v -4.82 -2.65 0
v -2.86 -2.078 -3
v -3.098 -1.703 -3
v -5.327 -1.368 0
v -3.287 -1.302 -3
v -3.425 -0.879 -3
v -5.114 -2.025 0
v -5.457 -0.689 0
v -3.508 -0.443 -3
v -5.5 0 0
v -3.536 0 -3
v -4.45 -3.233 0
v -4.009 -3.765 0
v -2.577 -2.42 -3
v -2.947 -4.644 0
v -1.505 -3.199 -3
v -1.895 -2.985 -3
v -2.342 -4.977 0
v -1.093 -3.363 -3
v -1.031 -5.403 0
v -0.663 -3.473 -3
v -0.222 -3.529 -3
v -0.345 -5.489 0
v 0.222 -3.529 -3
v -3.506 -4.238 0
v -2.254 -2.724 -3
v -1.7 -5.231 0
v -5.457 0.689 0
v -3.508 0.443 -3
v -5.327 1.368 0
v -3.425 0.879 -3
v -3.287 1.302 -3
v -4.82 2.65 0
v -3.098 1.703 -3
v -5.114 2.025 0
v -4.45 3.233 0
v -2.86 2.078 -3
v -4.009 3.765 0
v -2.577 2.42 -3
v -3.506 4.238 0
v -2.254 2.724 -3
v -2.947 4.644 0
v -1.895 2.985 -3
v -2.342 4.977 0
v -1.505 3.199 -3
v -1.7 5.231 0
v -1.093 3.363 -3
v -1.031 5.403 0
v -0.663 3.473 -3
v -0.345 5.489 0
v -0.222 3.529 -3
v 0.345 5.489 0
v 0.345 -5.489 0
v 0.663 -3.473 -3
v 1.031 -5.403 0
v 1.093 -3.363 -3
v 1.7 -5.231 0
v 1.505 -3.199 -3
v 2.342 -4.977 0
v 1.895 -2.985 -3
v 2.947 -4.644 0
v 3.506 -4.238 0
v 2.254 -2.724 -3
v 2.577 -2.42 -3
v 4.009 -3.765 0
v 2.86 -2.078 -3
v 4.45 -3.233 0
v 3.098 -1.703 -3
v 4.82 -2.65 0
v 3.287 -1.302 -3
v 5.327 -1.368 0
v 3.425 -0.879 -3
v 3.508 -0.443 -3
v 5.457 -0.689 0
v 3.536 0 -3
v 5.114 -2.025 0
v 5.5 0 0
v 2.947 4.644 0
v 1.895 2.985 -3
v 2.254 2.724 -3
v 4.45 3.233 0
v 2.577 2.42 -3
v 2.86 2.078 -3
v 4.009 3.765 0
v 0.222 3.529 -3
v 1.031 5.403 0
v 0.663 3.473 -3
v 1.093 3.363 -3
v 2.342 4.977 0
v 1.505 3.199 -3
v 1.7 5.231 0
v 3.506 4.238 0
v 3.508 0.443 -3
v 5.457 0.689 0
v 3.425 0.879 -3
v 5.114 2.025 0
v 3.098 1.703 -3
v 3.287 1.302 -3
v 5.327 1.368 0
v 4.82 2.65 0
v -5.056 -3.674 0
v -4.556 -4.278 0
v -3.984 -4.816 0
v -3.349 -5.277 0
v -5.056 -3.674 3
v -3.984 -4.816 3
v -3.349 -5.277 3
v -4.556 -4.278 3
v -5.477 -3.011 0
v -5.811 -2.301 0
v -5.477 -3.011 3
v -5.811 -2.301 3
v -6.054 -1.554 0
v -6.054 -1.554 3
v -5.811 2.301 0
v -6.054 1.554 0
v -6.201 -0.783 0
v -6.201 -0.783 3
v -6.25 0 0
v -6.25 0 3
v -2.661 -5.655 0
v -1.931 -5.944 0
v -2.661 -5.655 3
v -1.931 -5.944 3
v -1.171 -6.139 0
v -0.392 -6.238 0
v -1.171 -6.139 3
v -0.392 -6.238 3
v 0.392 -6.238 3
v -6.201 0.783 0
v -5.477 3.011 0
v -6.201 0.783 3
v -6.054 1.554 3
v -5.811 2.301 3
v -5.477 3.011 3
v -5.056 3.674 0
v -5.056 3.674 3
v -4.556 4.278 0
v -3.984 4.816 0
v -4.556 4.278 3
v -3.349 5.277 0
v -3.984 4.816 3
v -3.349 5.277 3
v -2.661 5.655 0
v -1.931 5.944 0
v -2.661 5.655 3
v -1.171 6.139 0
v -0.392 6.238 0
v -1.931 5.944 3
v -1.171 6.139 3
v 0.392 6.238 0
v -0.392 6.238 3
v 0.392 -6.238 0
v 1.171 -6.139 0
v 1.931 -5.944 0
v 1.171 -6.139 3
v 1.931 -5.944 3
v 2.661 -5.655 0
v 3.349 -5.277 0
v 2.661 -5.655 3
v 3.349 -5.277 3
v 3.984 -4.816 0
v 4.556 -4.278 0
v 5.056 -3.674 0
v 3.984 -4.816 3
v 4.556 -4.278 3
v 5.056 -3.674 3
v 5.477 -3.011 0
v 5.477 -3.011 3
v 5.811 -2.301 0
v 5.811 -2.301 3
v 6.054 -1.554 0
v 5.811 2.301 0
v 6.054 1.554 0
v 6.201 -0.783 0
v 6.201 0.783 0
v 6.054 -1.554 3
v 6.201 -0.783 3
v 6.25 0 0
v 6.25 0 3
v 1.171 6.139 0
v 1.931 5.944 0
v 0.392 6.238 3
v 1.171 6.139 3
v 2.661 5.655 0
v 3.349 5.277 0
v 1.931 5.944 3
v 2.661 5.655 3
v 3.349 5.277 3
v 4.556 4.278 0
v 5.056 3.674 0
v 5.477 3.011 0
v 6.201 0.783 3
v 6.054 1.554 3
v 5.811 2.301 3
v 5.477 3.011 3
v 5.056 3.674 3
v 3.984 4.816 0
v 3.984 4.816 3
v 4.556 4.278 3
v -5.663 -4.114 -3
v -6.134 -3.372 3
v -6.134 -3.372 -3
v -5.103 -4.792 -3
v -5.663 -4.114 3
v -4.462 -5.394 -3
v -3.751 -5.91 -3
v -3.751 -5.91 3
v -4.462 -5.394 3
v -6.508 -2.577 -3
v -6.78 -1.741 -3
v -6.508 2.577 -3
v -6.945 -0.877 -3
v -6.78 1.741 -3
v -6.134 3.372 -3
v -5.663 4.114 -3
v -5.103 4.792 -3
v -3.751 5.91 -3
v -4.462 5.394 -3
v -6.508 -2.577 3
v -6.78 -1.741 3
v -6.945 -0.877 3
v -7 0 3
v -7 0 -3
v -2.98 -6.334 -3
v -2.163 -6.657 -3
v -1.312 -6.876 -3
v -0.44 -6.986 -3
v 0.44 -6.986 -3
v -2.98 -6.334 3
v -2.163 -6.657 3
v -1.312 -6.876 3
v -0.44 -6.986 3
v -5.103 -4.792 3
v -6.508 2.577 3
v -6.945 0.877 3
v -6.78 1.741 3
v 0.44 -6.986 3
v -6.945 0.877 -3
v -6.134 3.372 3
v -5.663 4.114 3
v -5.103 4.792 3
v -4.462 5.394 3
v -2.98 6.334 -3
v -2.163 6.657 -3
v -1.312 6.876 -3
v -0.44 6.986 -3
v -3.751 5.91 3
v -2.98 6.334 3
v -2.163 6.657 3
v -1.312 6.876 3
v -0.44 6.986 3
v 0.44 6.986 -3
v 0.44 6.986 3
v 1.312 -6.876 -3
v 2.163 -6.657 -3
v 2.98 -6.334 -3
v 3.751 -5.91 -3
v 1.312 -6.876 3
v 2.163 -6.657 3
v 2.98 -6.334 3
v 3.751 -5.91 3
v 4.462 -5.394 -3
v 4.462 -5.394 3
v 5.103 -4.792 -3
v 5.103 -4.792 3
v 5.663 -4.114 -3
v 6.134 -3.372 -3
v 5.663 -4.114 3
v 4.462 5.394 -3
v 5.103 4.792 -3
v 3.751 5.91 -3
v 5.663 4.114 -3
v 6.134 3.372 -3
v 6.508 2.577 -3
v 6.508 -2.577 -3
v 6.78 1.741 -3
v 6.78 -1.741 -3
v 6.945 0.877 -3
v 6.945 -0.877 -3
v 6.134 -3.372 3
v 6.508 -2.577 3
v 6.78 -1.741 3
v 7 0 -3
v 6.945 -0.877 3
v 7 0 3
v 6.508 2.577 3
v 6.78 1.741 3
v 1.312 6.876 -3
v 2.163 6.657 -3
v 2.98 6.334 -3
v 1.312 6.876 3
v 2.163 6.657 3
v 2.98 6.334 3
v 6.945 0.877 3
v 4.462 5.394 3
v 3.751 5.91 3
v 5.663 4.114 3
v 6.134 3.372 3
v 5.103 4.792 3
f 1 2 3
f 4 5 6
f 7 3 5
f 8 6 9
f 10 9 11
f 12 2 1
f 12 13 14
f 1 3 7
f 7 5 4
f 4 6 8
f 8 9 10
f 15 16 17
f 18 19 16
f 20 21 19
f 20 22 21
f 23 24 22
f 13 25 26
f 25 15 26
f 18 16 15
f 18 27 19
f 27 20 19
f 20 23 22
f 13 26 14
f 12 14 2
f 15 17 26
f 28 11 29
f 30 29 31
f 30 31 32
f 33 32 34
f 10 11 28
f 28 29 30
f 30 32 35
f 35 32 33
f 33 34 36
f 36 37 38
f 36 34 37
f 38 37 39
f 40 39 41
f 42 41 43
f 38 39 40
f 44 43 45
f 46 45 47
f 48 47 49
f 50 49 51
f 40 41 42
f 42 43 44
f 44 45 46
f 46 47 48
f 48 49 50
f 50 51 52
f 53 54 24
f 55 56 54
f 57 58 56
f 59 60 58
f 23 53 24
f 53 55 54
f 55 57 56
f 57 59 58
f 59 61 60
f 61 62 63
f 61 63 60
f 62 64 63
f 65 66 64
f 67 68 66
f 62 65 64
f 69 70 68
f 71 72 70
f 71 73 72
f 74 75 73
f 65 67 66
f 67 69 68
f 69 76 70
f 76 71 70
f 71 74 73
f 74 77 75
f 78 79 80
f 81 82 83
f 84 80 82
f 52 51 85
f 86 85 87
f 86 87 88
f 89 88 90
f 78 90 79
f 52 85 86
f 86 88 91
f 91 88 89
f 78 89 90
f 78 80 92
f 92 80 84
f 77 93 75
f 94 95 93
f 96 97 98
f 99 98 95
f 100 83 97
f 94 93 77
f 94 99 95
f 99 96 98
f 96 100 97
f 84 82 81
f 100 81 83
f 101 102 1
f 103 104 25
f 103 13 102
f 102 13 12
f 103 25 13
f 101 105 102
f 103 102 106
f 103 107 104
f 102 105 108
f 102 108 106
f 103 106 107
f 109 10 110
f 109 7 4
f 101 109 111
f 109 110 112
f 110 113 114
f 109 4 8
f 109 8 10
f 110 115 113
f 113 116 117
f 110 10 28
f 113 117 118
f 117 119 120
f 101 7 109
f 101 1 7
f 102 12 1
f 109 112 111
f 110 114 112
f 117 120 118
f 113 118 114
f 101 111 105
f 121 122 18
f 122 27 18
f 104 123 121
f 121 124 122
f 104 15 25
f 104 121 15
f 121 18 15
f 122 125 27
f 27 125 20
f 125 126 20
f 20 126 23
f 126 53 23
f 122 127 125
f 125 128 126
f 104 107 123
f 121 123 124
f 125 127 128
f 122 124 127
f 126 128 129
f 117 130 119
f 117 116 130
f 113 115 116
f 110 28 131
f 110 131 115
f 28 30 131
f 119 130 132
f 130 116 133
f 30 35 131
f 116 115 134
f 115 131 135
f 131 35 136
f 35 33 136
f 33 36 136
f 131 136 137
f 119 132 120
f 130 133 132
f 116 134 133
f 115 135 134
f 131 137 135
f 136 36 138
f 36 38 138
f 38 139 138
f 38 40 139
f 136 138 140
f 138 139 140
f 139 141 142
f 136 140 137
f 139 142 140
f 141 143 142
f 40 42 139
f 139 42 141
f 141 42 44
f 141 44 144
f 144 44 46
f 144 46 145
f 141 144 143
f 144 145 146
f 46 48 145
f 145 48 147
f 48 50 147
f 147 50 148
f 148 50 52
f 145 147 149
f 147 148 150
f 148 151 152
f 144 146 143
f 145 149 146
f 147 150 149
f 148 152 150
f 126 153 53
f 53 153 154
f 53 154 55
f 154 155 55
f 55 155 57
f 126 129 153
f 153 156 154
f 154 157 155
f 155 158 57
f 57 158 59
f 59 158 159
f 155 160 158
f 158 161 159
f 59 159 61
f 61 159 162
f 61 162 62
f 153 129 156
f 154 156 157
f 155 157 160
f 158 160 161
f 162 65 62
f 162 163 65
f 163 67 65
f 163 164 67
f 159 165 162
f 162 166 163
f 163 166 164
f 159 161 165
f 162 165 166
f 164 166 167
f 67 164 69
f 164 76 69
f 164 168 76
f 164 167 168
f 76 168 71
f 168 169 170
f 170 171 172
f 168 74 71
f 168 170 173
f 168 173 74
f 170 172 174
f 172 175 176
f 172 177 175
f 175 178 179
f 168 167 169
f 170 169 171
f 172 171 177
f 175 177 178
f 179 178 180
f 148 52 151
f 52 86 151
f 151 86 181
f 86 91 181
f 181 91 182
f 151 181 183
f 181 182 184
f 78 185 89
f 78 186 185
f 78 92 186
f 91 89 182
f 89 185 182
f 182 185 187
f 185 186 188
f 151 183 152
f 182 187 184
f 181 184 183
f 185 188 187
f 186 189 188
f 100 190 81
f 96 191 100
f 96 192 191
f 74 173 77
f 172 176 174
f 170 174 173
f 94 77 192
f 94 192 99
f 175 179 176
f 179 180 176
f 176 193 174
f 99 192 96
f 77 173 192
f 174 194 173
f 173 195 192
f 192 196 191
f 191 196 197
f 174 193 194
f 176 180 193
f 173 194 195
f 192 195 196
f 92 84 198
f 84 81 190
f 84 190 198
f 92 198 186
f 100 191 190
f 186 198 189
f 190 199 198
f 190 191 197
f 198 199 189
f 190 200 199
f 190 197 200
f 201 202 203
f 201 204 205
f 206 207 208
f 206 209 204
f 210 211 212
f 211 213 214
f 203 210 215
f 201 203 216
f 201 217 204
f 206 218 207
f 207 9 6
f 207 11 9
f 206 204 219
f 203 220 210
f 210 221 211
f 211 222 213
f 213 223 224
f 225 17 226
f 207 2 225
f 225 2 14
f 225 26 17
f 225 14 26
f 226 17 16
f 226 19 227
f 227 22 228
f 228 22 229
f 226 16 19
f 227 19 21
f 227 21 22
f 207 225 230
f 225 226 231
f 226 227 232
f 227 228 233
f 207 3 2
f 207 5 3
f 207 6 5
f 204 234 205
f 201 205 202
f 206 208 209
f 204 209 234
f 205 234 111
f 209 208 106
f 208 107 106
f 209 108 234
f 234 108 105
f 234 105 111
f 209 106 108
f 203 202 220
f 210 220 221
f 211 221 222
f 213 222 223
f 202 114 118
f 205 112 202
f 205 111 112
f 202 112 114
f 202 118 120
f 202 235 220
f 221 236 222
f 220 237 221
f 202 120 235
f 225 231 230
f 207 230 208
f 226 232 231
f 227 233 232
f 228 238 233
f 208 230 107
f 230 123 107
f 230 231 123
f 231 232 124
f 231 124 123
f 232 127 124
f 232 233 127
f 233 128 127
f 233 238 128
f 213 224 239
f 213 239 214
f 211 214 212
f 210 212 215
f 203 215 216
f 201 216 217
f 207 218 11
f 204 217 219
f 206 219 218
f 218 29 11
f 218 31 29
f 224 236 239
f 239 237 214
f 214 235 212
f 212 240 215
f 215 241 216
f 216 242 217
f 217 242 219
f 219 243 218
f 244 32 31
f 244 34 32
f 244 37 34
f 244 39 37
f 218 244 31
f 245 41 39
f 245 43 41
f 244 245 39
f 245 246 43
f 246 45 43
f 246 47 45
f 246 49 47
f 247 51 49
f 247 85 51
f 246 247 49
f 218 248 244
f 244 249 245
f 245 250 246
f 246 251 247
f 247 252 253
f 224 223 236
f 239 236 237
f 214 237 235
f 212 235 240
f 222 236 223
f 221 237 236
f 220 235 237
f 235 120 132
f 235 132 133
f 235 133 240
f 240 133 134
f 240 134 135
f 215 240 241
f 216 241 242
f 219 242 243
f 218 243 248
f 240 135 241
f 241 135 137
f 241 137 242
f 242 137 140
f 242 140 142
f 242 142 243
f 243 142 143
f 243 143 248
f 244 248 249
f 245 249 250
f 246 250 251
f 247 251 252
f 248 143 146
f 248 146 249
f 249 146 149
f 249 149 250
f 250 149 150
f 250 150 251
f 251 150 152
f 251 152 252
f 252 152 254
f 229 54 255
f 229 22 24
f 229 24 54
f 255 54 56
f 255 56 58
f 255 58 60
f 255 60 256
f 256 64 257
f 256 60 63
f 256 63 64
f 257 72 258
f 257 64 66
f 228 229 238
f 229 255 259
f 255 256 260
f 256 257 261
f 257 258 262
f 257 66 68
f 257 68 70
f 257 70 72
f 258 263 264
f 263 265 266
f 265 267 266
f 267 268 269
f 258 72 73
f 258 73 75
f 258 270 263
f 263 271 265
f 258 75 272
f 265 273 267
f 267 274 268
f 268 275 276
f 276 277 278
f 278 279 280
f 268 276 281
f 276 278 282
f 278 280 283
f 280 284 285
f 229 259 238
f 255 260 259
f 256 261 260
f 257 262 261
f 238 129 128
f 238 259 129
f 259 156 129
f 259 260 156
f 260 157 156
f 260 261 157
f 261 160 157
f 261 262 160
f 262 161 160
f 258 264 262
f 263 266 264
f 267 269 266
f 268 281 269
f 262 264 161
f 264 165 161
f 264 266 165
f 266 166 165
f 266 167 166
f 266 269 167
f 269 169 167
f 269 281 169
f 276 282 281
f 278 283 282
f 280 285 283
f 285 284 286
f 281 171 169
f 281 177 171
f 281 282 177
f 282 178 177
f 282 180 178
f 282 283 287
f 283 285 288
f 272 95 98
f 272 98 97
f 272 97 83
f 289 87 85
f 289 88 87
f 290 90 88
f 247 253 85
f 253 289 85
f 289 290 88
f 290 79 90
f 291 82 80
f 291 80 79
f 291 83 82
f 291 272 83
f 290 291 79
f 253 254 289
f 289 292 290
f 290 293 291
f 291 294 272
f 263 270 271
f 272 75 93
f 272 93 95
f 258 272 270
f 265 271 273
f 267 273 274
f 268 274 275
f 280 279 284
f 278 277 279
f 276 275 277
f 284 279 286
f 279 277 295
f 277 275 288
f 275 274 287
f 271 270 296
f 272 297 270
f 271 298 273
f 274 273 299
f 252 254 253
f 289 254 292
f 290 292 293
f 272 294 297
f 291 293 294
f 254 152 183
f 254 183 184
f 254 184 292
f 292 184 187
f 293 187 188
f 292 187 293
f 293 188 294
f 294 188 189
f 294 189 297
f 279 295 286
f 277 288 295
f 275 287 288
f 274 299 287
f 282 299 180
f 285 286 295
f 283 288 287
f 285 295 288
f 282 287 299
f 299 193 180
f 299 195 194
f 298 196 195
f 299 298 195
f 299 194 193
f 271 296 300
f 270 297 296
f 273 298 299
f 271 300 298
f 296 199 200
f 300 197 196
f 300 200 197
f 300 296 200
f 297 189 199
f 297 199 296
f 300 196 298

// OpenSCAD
$fn = 50;

difference() {
	union() {
		translate(v = [0, 0, -3.0]) {
			cylinder(h = 6, r = 7.0);
		}
	}
	union() {
		translate(v = [0, 0, 0]) {
			rotate(a = [0, 0, 0]) {
				difference() {
					union() {
						translate(v = [0, 0, -6.0]) {
							cylinder(h = 6, r = 2.25);
						}
						translate(v = [0, 0, -4.2]) {
							cylinder(h = 4.2, r1 = 2.75, r2 = 5.5);
						}
						translate(v = [0, 0, -6.0]) {
							cylinder(h = 6, r = 2.75);
						}
						translate(v = [0, 0, -6.0]) {
							cylinder(h = 6, r = 2.25);
						}
					}
					union();
				}
			}
		}
		#cylinder(h = 3, r = 6.25);
	}
}
